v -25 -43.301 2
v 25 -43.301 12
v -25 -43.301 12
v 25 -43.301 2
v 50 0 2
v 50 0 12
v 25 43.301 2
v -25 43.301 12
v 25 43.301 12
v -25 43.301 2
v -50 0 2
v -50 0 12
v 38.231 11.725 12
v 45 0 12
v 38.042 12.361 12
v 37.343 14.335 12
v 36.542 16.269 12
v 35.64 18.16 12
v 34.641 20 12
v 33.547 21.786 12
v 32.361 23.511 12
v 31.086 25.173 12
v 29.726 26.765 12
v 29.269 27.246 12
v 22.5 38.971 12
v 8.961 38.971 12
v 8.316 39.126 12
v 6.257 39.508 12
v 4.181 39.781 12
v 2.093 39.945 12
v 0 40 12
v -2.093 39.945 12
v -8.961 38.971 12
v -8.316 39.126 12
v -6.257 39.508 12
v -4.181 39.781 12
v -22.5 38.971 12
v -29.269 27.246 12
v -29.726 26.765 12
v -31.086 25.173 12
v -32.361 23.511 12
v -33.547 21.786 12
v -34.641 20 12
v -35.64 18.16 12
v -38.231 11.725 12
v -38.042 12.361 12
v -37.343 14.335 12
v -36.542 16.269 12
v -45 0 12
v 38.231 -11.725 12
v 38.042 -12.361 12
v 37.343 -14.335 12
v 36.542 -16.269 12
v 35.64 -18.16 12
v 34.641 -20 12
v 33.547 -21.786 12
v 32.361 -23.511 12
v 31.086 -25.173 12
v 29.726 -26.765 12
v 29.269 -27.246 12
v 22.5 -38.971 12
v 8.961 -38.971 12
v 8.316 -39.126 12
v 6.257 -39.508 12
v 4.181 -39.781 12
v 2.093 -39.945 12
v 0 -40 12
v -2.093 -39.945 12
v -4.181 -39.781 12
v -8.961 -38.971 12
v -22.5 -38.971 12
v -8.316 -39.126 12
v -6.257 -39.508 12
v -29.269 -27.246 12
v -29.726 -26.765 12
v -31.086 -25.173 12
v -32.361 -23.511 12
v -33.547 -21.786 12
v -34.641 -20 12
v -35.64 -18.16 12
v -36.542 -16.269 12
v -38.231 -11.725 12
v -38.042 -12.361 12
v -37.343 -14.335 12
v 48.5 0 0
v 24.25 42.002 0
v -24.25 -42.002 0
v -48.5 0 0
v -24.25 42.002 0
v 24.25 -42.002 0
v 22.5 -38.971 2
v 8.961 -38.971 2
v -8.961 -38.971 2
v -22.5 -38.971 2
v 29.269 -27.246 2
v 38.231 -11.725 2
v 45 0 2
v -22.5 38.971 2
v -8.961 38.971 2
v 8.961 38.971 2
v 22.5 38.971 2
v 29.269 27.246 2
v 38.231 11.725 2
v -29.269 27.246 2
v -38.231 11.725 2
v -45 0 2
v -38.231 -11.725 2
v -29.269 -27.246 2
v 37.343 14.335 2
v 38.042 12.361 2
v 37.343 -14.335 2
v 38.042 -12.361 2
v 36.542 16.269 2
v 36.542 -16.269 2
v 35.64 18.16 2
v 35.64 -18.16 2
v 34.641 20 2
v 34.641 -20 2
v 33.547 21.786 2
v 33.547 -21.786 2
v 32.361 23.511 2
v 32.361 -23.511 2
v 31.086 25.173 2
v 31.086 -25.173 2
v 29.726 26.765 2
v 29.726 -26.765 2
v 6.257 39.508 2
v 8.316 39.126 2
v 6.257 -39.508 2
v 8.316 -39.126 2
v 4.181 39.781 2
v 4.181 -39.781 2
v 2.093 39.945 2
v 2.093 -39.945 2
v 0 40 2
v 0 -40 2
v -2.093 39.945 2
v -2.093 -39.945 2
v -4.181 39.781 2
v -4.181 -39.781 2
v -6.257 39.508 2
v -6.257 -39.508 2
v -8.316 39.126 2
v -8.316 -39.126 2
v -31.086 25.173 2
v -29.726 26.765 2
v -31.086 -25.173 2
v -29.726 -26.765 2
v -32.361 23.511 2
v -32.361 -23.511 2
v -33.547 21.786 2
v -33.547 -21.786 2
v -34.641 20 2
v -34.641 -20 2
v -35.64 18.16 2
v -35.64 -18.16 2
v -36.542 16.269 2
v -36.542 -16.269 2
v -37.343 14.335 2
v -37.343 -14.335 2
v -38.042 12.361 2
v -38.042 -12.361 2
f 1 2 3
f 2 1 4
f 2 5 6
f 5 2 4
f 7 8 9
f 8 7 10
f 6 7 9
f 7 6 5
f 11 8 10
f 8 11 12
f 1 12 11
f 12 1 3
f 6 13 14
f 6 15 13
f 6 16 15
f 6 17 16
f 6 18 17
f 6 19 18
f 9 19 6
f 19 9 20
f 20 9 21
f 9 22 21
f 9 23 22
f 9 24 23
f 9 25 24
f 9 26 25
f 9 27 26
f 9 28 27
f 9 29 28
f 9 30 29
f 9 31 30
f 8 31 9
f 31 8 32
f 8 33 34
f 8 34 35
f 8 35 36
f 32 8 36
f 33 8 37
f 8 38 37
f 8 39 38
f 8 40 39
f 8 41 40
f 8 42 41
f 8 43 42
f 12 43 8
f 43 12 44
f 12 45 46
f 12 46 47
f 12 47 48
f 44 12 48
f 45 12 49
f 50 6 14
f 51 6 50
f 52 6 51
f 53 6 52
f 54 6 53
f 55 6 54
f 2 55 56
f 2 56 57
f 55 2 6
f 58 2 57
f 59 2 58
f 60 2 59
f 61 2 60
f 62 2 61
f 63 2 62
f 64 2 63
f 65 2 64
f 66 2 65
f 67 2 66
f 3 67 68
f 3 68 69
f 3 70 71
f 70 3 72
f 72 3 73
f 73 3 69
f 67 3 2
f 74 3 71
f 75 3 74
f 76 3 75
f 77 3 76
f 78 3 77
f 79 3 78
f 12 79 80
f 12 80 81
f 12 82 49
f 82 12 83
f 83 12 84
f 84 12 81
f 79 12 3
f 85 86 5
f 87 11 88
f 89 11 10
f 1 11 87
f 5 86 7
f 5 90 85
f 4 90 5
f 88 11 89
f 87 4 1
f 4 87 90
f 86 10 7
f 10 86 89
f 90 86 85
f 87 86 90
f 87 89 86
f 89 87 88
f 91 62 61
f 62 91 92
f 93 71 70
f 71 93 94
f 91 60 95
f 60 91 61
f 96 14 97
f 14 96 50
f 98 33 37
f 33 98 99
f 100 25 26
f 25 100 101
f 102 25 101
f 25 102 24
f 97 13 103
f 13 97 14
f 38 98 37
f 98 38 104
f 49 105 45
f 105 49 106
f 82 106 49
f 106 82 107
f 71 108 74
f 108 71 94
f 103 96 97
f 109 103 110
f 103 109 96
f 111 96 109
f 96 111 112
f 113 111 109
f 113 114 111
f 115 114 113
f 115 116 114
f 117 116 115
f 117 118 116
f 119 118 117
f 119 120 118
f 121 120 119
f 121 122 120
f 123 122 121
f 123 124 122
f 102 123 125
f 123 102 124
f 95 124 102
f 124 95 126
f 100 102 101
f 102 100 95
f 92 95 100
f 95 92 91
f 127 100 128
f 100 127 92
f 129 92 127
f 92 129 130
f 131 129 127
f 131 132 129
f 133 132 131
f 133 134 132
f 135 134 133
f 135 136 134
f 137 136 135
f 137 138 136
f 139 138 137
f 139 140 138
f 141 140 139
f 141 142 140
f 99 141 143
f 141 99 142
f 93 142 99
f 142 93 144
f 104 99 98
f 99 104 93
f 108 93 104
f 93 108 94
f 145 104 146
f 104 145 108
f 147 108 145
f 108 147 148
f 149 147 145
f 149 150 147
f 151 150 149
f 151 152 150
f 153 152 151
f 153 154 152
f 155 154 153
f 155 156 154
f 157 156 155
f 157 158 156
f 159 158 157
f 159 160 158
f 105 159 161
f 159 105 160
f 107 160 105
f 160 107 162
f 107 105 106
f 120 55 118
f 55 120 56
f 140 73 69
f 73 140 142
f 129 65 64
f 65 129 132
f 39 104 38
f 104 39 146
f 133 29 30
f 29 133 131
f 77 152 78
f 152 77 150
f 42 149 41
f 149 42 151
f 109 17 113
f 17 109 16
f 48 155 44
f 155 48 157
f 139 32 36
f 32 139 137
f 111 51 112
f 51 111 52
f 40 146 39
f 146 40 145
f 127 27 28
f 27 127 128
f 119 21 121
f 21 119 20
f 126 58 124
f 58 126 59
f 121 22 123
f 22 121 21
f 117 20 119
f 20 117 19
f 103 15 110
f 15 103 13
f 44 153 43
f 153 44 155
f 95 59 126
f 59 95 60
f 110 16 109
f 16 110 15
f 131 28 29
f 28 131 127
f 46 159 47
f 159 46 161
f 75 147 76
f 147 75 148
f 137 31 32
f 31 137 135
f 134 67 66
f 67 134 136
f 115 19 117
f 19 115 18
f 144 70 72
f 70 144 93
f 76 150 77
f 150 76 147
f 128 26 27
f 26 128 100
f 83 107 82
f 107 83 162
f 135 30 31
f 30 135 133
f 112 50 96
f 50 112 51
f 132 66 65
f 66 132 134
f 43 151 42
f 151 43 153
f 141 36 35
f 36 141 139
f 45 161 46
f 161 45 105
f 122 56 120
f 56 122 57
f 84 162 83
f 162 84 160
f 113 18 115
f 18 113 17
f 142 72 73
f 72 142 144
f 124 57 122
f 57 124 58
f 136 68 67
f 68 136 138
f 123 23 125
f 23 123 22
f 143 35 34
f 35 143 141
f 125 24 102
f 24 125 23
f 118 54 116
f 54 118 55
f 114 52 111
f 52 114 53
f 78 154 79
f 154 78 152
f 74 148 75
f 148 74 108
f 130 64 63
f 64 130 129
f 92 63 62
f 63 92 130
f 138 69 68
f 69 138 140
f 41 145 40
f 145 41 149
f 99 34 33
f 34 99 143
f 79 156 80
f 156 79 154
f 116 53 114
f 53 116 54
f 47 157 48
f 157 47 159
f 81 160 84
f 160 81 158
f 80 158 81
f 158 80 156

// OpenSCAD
$fn = 120;
boreheight = 8.5;

difference() {
    union() {
        translate([0,0,2]) cylinder(r=50, h=10, $fn=6);
        cylinder(2, 48.5, 50, $fn=6);
    }
    union() {
        translate([0,0,2]) cylinder(r=45, h=24, $fn=6);
        translate([0,0,2]) cylinder(r=40, h=24);
        /*
        translate([0,0,boreheight]) rotate(a=[-90,0,0])
            cylinder(150, 1.75, 1.75, center=true);
        translate([0,0,boreheight]) rotate(a=[-90,0,60])
            cylinder(150, 1.75, 1.75, center=true);
        translate([0,0,boreheight]) rotate(a=[-90,0,-60])
            cylinder(150, 1.75, 1.75, center=true); */
        
    }
}
